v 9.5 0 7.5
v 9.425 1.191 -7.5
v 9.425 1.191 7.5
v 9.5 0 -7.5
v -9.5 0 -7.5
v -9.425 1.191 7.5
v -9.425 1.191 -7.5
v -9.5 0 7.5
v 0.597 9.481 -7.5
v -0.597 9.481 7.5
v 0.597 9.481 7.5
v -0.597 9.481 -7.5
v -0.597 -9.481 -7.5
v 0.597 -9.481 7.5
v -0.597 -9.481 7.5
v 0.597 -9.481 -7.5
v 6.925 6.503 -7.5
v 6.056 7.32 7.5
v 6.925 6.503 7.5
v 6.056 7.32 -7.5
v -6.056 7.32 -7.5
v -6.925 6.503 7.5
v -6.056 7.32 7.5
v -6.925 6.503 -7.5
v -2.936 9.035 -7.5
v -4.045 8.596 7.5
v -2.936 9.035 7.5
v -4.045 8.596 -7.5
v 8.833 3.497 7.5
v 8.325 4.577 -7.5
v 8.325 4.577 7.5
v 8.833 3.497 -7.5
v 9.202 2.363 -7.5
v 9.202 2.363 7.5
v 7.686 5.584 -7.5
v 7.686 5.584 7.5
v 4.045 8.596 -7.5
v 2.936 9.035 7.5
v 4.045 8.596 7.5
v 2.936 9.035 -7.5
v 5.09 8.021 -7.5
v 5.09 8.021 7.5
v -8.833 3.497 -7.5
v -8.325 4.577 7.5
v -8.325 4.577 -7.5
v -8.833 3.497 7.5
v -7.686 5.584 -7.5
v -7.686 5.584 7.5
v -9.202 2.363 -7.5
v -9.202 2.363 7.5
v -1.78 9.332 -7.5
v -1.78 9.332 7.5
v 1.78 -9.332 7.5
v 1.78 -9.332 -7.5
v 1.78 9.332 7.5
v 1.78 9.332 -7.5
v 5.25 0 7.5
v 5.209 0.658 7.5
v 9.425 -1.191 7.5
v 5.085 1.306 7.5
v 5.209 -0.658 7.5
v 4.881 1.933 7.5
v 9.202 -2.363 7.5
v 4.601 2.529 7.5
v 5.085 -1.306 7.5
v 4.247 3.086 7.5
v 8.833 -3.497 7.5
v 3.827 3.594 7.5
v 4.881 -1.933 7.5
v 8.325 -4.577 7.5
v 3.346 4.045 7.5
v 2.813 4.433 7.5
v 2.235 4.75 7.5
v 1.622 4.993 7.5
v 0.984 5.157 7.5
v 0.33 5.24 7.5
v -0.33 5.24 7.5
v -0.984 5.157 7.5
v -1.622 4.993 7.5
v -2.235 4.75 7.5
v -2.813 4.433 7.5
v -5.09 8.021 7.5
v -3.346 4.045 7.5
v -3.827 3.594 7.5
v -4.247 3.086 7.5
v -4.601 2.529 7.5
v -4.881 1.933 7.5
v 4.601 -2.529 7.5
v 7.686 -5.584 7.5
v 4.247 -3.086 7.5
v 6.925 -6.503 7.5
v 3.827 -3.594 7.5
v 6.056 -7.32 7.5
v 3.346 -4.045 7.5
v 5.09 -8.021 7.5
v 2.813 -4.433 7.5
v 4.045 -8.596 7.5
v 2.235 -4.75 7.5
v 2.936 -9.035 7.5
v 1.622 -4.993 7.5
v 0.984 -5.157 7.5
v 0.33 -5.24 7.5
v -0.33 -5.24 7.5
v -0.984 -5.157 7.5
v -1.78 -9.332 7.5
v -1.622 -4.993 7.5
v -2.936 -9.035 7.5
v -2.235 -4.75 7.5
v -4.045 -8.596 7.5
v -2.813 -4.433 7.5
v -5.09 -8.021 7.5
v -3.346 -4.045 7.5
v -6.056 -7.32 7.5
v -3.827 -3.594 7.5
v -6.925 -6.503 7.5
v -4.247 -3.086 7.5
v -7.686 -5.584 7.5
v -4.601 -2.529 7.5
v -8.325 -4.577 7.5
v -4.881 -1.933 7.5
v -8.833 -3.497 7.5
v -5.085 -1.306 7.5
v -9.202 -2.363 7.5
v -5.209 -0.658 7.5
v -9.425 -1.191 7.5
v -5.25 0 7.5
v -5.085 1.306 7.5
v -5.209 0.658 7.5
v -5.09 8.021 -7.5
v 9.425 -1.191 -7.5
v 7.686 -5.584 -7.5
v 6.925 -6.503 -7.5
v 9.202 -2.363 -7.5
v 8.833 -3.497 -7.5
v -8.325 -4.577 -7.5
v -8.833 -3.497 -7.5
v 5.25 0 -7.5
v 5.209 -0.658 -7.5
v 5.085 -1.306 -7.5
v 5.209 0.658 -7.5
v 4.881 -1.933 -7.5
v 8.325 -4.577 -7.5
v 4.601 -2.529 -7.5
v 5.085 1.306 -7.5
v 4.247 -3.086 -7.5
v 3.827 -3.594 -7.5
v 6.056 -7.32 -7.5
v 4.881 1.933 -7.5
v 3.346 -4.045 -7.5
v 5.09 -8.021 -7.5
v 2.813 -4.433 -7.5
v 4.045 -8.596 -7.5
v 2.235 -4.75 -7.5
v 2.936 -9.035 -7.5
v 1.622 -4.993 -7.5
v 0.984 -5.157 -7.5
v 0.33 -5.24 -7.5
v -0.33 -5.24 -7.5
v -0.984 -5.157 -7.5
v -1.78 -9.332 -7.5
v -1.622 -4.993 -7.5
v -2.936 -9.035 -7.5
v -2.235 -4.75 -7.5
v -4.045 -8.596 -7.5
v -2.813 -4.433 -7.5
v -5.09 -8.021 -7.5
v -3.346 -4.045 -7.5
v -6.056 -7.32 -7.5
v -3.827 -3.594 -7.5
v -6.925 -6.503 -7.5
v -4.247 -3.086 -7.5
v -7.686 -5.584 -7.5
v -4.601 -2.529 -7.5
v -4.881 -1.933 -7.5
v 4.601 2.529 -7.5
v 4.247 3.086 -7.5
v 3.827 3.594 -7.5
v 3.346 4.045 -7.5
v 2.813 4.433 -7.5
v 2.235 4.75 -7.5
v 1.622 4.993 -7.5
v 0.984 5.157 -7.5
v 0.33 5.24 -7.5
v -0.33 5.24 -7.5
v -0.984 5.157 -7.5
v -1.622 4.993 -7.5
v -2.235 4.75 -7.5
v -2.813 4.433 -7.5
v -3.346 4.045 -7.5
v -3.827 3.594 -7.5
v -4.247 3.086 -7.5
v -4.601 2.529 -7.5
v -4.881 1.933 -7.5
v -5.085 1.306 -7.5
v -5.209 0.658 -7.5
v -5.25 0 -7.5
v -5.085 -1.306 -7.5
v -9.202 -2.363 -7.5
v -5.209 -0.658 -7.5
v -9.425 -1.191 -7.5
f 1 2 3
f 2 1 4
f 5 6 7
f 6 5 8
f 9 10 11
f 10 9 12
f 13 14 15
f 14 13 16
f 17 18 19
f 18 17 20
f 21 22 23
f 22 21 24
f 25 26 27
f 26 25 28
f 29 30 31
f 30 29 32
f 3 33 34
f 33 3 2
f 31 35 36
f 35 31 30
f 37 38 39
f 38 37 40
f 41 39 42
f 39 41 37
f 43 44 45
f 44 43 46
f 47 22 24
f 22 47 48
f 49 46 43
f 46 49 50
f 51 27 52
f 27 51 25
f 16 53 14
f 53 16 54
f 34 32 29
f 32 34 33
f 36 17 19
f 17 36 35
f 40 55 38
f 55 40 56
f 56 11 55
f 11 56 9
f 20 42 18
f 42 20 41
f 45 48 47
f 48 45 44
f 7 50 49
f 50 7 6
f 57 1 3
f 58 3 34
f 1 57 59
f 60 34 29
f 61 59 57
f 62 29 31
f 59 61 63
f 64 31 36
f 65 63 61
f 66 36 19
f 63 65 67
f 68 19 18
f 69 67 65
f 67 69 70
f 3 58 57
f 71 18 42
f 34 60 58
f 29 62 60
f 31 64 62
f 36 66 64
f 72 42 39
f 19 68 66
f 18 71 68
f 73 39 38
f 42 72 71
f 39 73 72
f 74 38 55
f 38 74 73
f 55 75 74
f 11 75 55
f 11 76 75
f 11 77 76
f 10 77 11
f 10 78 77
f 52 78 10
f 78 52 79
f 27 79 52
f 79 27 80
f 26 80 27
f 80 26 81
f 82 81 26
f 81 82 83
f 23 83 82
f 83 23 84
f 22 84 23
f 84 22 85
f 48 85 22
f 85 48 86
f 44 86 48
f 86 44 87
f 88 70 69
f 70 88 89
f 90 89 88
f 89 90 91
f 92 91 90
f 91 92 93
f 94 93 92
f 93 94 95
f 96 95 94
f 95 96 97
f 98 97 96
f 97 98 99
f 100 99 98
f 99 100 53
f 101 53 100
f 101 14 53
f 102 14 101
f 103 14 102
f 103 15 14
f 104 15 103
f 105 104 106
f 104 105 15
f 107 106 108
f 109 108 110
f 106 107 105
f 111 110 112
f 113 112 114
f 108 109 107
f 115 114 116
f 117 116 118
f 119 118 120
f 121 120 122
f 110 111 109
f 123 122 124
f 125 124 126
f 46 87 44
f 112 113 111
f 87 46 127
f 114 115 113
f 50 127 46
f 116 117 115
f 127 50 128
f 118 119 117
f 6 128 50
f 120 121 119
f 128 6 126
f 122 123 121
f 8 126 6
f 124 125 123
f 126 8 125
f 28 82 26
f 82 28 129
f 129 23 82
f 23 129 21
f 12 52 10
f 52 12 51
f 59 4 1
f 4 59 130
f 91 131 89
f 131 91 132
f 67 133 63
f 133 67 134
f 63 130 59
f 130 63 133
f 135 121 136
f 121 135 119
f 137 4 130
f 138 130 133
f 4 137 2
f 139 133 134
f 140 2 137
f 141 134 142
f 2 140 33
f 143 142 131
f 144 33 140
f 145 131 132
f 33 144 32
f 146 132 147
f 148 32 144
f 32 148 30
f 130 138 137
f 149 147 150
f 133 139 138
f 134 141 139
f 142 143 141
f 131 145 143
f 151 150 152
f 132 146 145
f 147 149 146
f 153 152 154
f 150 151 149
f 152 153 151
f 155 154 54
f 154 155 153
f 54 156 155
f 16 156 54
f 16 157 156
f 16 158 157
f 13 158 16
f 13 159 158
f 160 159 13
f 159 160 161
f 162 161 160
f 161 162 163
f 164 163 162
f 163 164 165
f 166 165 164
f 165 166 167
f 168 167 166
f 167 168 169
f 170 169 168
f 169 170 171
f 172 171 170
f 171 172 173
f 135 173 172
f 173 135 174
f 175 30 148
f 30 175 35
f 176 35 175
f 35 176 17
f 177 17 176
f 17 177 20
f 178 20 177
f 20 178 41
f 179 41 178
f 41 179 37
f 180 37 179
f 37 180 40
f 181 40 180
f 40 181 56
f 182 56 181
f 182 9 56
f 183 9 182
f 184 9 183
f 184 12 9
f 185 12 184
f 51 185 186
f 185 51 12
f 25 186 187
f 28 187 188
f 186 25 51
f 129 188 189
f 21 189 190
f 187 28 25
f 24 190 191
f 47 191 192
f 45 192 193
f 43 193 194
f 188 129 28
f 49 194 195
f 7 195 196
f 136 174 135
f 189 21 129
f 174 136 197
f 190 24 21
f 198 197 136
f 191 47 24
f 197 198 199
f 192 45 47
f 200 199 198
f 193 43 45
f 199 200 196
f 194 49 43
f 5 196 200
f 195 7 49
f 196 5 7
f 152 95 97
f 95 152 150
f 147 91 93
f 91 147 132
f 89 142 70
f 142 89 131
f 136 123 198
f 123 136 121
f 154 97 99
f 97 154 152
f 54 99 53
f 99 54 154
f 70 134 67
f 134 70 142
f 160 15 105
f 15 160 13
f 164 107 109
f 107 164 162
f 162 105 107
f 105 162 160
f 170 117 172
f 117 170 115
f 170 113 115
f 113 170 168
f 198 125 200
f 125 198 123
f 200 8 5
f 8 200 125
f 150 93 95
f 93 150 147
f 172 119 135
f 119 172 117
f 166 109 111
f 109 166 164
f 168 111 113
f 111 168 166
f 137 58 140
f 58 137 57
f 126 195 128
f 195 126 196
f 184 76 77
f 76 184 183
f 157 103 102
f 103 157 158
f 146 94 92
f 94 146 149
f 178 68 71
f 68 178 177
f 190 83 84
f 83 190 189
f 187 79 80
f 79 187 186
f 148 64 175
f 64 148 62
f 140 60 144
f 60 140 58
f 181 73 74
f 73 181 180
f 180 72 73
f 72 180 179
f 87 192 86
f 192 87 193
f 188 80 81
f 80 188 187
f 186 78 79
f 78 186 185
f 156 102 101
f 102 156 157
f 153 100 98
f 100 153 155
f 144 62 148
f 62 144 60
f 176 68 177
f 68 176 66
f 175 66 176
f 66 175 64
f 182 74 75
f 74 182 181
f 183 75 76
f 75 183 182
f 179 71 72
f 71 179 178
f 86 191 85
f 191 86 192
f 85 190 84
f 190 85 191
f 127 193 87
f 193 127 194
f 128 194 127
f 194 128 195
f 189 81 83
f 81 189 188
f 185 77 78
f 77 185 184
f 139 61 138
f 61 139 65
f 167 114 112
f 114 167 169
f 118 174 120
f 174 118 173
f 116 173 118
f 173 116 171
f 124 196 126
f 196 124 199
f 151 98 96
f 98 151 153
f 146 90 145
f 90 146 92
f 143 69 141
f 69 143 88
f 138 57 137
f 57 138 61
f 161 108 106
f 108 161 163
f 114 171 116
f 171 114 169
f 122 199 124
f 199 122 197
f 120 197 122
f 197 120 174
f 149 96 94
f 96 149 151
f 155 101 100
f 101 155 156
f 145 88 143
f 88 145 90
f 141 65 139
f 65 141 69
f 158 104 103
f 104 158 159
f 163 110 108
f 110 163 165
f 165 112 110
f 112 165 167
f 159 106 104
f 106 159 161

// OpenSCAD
$fn = 50;


difference() {
	union() {
		translate(v = [0, 0, -7.5000000000]) {
			cylinder(h = 15, r = 9.5000000000);
		}
	}
	union() {
		translate(v = [0, 0, -100.0000000000]) {
			cylinder(h = 200, r = 5.2500000000);
		}
	}
}
